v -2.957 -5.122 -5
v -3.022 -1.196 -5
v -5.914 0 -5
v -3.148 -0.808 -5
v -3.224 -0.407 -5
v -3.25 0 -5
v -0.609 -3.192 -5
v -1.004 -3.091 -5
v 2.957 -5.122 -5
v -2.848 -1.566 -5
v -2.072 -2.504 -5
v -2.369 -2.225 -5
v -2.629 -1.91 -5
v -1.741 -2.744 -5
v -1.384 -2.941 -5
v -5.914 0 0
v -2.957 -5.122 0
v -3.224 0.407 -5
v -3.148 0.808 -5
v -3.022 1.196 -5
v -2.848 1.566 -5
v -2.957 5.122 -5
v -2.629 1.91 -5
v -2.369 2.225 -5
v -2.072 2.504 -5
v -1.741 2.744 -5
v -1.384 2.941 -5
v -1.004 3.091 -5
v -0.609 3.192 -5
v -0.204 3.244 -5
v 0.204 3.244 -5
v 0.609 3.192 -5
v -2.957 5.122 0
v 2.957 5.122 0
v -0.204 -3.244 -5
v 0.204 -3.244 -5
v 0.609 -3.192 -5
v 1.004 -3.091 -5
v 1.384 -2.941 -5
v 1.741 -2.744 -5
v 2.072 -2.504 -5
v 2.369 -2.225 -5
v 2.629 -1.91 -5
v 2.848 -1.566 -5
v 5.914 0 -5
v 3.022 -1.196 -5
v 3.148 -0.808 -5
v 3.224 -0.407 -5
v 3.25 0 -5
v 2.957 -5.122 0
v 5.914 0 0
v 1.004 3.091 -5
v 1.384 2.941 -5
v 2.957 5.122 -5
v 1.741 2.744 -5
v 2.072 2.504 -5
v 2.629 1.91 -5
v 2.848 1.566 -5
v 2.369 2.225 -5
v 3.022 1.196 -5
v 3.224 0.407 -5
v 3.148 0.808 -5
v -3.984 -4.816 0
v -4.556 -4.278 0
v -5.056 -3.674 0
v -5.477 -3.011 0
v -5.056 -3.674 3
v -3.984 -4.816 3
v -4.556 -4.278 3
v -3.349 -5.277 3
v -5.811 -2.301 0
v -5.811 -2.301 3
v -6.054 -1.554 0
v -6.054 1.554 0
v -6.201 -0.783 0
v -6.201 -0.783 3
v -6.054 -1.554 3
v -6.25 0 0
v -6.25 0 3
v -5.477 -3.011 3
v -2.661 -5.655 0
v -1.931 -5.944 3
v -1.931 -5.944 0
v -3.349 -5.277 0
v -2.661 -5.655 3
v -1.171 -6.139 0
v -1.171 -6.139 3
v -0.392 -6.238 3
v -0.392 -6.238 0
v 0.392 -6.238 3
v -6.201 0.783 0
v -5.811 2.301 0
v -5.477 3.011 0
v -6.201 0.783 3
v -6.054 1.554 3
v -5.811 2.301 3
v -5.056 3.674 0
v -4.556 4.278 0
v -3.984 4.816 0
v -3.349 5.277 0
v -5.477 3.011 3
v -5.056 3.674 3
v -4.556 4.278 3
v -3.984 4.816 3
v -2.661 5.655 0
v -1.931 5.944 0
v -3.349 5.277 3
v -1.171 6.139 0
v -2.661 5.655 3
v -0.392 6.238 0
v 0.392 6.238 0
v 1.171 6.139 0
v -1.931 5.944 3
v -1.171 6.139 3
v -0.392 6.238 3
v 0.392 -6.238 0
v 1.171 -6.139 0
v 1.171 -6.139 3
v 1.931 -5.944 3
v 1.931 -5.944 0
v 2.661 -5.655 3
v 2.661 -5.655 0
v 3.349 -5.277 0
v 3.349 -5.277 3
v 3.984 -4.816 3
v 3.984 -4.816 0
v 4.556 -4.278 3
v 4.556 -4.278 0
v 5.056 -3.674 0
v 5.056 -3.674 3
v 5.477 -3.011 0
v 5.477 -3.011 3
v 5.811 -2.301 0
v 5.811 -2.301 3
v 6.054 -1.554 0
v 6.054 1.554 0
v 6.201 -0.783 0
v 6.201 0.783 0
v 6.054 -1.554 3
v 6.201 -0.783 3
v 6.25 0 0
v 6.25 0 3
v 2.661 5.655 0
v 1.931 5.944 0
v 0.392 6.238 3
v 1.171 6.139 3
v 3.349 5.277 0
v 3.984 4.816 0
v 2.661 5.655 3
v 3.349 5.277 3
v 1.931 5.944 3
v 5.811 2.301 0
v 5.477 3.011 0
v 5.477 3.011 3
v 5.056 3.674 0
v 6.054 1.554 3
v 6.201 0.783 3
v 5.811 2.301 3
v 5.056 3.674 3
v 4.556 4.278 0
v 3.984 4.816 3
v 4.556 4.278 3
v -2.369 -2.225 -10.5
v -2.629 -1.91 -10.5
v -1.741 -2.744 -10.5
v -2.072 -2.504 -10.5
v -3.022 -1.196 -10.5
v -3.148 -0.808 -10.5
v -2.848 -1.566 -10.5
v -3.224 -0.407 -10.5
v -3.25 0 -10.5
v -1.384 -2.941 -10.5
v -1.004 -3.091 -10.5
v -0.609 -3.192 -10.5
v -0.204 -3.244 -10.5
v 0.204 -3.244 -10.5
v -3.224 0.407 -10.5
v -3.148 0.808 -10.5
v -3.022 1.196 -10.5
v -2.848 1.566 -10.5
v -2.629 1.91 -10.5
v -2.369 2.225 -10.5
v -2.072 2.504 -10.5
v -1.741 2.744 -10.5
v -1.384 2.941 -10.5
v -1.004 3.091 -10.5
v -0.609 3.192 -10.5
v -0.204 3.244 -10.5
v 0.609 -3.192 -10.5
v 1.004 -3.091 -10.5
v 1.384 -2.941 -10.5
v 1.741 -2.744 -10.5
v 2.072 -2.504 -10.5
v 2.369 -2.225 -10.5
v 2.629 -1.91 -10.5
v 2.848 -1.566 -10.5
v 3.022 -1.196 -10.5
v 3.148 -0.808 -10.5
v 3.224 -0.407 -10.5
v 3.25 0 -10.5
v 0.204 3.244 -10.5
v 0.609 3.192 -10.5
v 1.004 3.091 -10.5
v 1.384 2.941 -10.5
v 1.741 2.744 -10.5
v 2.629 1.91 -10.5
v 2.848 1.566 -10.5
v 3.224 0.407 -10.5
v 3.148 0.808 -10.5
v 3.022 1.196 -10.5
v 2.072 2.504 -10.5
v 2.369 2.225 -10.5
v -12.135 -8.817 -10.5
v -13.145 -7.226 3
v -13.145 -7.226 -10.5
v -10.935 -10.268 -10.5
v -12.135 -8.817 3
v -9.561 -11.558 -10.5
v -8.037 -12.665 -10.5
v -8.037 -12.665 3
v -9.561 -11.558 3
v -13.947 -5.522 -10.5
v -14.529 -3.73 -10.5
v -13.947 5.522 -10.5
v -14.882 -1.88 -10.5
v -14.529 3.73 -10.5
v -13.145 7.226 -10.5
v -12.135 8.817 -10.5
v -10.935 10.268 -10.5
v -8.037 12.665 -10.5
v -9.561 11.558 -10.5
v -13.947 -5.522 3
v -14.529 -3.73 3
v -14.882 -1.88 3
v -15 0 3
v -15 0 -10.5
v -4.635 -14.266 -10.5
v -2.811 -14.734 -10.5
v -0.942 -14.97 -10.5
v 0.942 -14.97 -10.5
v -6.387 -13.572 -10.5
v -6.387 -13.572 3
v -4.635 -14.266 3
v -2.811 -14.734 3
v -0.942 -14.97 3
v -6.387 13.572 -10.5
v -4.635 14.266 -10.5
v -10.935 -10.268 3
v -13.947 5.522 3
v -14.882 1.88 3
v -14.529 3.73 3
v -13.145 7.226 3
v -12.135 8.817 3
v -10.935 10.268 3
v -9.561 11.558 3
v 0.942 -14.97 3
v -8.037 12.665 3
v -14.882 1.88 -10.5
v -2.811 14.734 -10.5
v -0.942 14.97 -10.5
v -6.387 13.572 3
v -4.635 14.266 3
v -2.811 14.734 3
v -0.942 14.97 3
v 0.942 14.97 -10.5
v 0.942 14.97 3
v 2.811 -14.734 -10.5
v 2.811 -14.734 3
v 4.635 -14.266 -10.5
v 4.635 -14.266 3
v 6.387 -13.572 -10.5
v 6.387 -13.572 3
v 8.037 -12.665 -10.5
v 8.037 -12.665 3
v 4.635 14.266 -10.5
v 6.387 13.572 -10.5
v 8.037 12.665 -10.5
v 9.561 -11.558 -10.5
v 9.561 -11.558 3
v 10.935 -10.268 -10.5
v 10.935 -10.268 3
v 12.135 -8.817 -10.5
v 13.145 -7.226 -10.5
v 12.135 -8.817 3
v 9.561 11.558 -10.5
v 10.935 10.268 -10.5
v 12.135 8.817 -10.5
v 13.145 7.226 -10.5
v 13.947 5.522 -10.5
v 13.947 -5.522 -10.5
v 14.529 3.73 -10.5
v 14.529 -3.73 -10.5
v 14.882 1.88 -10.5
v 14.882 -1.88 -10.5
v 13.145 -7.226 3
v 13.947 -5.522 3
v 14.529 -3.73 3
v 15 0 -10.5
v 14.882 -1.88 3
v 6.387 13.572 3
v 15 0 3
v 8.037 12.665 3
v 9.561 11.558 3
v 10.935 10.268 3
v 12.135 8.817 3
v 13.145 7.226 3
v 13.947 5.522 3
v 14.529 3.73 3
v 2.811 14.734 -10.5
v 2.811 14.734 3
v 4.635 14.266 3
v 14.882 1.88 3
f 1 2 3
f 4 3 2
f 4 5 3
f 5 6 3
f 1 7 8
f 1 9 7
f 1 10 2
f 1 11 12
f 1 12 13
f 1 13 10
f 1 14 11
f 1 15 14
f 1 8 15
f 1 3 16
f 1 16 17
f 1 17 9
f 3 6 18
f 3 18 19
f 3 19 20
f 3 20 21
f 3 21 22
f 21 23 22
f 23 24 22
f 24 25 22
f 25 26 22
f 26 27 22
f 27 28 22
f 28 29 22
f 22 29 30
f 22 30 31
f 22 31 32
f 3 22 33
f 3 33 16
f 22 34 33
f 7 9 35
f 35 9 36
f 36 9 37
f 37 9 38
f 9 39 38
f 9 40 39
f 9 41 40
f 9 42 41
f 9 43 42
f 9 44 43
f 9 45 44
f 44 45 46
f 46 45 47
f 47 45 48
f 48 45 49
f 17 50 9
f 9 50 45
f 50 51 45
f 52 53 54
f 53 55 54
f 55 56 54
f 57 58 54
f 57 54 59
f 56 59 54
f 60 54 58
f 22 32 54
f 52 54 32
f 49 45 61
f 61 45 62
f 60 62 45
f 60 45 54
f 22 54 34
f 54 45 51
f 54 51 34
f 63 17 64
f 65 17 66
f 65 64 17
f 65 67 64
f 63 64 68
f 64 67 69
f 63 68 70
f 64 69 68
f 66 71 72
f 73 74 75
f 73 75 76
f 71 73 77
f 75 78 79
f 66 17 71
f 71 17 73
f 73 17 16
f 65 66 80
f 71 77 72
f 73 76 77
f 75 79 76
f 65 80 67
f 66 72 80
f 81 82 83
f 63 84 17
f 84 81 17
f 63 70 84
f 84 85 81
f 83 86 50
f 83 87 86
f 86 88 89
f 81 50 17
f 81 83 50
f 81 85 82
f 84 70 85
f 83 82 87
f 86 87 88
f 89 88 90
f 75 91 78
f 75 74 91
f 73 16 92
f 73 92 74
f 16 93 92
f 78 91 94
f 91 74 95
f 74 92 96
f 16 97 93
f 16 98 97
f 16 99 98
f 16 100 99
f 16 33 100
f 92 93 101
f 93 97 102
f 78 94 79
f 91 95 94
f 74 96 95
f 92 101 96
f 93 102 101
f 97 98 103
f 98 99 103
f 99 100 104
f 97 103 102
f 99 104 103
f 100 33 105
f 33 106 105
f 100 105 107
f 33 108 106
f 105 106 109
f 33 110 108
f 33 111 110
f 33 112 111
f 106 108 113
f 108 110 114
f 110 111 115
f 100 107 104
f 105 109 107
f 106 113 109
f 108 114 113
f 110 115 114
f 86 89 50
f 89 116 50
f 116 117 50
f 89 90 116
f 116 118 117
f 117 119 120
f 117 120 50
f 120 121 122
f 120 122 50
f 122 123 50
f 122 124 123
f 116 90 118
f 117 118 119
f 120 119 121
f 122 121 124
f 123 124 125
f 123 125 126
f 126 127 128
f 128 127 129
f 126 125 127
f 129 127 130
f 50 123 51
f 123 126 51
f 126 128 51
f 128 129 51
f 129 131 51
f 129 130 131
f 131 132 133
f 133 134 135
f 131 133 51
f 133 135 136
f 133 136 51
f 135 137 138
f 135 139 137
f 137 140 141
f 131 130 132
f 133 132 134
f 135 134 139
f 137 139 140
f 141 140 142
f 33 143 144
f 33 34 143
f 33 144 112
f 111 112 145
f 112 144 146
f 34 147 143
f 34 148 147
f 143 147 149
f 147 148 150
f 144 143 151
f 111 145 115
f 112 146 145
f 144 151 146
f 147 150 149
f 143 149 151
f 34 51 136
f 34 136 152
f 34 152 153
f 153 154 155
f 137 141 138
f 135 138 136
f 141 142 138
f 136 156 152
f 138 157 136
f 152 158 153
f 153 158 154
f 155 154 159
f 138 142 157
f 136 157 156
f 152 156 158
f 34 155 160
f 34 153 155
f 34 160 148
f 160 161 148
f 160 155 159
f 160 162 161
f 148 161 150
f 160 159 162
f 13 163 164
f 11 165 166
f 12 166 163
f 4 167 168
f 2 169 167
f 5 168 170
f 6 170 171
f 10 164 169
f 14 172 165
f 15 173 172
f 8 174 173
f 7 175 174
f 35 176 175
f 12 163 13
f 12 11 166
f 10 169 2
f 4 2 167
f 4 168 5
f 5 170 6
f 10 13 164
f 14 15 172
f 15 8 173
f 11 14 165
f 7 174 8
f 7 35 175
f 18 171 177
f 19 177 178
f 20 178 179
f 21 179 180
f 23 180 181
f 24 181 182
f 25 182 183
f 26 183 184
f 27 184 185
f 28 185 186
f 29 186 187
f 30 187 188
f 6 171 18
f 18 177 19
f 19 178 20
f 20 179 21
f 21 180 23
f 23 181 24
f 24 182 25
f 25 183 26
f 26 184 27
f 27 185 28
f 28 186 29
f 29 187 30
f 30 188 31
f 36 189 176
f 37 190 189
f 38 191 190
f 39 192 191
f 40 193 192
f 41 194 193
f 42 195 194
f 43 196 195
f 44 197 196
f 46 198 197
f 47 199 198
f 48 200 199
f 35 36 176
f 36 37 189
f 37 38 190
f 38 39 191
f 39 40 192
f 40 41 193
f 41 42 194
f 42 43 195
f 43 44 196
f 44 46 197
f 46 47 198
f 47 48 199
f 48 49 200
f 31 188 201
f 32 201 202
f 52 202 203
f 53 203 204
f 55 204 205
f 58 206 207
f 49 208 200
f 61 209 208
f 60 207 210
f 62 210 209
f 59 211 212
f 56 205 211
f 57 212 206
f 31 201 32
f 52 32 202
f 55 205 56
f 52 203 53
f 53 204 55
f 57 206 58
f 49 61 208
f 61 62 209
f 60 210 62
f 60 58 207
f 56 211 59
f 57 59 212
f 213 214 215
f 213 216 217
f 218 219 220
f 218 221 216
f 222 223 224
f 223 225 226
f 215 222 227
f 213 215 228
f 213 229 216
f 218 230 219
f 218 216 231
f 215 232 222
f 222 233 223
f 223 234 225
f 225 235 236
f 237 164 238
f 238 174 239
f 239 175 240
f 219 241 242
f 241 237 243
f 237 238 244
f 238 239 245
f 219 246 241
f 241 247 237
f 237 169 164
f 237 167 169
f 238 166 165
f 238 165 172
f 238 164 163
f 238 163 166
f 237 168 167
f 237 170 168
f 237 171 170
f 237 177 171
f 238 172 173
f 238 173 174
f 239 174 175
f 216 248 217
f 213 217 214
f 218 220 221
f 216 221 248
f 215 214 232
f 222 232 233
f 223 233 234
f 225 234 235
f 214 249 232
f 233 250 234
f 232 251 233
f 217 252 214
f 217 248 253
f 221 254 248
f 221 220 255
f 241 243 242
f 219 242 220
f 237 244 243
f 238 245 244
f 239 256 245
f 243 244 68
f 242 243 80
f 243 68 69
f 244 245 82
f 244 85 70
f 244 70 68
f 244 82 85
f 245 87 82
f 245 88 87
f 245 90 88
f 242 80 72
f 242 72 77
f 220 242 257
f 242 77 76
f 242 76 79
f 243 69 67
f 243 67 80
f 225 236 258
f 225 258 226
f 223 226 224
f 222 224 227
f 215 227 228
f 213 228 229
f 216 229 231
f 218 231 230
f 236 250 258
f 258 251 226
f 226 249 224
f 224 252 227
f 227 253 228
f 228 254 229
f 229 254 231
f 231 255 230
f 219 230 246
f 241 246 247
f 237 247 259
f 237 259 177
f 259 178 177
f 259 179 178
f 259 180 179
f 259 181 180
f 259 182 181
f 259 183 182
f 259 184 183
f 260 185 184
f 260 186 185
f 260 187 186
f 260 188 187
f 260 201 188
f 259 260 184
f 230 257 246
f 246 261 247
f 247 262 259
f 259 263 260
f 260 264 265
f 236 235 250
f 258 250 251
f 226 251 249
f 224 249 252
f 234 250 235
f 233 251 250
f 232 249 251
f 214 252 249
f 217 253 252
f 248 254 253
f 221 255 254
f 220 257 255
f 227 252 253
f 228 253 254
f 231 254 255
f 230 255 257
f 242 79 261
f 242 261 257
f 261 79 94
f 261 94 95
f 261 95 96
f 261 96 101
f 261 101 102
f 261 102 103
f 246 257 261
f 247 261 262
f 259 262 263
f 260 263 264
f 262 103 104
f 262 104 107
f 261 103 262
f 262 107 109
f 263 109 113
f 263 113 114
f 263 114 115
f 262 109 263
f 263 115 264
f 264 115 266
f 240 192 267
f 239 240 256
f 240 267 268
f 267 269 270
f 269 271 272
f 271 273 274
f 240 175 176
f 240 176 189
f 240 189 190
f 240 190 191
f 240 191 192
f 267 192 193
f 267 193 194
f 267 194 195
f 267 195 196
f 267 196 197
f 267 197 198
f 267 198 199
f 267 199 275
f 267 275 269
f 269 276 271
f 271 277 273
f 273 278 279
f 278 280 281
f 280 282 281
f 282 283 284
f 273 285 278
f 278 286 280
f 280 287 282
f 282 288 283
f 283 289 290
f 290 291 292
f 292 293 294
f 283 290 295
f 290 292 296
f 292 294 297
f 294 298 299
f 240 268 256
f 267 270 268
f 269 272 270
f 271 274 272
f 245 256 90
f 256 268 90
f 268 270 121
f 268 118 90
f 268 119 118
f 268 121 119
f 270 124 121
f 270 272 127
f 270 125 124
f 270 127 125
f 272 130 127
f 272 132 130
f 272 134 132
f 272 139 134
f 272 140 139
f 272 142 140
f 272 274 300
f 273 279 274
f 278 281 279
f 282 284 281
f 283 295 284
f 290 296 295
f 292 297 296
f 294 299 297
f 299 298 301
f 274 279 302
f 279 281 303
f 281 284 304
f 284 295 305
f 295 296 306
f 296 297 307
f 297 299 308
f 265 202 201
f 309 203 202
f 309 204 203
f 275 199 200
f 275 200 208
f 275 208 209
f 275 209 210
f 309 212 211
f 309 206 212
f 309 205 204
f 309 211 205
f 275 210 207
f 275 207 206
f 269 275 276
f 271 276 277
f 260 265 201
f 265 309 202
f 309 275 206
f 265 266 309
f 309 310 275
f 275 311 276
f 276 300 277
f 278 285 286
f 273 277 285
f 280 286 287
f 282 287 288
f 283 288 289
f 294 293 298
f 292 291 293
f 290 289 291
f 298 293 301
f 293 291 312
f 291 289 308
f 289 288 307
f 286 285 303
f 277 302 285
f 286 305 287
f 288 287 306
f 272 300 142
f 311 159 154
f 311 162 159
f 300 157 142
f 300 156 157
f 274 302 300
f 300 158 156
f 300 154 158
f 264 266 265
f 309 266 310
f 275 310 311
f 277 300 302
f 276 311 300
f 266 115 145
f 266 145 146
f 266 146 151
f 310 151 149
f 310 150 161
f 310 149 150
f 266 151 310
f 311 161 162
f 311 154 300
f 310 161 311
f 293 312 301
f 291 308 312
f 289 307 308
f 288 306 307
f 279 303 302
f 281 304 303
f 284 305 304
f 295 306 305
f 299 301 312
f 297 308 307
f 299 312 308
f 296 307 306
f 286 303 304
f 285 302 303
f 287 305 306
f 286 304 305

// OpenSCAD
$fn = 50;

difference() {
	union() {
		translate(v = [0, 0, -10.5]) {
			cylinder(h = 13.5, r = 15.0);
		}
	}
	union() {
		translate(v = [0, 0, 0]) {
			rotate(a = [0, 0, 0]) {
				difference() {
					union() {
						translate(v = [0, 0, -5]) {
							linear_extrude(height = 5) {
								polygon(points = [[5.914249999999999, 0.0], [2.957125, 5.1218907443321156], [-2.9571249999999982, 5.1218907443321156], [-5.914249999999999, 7.242867331857232e-16], [-2.9571250000000022, -5.121890744332115], [2.9571249999999956, -5.121890744332118]]);
							}
						}
					}
					union();
				}
			}
		}
		#cylinder(h = 3, r = 6.25);
		#translate(v = [0, 0, -100.0]) {
			cylinder(h = 200, r = 3.25);
		}
	}
}
